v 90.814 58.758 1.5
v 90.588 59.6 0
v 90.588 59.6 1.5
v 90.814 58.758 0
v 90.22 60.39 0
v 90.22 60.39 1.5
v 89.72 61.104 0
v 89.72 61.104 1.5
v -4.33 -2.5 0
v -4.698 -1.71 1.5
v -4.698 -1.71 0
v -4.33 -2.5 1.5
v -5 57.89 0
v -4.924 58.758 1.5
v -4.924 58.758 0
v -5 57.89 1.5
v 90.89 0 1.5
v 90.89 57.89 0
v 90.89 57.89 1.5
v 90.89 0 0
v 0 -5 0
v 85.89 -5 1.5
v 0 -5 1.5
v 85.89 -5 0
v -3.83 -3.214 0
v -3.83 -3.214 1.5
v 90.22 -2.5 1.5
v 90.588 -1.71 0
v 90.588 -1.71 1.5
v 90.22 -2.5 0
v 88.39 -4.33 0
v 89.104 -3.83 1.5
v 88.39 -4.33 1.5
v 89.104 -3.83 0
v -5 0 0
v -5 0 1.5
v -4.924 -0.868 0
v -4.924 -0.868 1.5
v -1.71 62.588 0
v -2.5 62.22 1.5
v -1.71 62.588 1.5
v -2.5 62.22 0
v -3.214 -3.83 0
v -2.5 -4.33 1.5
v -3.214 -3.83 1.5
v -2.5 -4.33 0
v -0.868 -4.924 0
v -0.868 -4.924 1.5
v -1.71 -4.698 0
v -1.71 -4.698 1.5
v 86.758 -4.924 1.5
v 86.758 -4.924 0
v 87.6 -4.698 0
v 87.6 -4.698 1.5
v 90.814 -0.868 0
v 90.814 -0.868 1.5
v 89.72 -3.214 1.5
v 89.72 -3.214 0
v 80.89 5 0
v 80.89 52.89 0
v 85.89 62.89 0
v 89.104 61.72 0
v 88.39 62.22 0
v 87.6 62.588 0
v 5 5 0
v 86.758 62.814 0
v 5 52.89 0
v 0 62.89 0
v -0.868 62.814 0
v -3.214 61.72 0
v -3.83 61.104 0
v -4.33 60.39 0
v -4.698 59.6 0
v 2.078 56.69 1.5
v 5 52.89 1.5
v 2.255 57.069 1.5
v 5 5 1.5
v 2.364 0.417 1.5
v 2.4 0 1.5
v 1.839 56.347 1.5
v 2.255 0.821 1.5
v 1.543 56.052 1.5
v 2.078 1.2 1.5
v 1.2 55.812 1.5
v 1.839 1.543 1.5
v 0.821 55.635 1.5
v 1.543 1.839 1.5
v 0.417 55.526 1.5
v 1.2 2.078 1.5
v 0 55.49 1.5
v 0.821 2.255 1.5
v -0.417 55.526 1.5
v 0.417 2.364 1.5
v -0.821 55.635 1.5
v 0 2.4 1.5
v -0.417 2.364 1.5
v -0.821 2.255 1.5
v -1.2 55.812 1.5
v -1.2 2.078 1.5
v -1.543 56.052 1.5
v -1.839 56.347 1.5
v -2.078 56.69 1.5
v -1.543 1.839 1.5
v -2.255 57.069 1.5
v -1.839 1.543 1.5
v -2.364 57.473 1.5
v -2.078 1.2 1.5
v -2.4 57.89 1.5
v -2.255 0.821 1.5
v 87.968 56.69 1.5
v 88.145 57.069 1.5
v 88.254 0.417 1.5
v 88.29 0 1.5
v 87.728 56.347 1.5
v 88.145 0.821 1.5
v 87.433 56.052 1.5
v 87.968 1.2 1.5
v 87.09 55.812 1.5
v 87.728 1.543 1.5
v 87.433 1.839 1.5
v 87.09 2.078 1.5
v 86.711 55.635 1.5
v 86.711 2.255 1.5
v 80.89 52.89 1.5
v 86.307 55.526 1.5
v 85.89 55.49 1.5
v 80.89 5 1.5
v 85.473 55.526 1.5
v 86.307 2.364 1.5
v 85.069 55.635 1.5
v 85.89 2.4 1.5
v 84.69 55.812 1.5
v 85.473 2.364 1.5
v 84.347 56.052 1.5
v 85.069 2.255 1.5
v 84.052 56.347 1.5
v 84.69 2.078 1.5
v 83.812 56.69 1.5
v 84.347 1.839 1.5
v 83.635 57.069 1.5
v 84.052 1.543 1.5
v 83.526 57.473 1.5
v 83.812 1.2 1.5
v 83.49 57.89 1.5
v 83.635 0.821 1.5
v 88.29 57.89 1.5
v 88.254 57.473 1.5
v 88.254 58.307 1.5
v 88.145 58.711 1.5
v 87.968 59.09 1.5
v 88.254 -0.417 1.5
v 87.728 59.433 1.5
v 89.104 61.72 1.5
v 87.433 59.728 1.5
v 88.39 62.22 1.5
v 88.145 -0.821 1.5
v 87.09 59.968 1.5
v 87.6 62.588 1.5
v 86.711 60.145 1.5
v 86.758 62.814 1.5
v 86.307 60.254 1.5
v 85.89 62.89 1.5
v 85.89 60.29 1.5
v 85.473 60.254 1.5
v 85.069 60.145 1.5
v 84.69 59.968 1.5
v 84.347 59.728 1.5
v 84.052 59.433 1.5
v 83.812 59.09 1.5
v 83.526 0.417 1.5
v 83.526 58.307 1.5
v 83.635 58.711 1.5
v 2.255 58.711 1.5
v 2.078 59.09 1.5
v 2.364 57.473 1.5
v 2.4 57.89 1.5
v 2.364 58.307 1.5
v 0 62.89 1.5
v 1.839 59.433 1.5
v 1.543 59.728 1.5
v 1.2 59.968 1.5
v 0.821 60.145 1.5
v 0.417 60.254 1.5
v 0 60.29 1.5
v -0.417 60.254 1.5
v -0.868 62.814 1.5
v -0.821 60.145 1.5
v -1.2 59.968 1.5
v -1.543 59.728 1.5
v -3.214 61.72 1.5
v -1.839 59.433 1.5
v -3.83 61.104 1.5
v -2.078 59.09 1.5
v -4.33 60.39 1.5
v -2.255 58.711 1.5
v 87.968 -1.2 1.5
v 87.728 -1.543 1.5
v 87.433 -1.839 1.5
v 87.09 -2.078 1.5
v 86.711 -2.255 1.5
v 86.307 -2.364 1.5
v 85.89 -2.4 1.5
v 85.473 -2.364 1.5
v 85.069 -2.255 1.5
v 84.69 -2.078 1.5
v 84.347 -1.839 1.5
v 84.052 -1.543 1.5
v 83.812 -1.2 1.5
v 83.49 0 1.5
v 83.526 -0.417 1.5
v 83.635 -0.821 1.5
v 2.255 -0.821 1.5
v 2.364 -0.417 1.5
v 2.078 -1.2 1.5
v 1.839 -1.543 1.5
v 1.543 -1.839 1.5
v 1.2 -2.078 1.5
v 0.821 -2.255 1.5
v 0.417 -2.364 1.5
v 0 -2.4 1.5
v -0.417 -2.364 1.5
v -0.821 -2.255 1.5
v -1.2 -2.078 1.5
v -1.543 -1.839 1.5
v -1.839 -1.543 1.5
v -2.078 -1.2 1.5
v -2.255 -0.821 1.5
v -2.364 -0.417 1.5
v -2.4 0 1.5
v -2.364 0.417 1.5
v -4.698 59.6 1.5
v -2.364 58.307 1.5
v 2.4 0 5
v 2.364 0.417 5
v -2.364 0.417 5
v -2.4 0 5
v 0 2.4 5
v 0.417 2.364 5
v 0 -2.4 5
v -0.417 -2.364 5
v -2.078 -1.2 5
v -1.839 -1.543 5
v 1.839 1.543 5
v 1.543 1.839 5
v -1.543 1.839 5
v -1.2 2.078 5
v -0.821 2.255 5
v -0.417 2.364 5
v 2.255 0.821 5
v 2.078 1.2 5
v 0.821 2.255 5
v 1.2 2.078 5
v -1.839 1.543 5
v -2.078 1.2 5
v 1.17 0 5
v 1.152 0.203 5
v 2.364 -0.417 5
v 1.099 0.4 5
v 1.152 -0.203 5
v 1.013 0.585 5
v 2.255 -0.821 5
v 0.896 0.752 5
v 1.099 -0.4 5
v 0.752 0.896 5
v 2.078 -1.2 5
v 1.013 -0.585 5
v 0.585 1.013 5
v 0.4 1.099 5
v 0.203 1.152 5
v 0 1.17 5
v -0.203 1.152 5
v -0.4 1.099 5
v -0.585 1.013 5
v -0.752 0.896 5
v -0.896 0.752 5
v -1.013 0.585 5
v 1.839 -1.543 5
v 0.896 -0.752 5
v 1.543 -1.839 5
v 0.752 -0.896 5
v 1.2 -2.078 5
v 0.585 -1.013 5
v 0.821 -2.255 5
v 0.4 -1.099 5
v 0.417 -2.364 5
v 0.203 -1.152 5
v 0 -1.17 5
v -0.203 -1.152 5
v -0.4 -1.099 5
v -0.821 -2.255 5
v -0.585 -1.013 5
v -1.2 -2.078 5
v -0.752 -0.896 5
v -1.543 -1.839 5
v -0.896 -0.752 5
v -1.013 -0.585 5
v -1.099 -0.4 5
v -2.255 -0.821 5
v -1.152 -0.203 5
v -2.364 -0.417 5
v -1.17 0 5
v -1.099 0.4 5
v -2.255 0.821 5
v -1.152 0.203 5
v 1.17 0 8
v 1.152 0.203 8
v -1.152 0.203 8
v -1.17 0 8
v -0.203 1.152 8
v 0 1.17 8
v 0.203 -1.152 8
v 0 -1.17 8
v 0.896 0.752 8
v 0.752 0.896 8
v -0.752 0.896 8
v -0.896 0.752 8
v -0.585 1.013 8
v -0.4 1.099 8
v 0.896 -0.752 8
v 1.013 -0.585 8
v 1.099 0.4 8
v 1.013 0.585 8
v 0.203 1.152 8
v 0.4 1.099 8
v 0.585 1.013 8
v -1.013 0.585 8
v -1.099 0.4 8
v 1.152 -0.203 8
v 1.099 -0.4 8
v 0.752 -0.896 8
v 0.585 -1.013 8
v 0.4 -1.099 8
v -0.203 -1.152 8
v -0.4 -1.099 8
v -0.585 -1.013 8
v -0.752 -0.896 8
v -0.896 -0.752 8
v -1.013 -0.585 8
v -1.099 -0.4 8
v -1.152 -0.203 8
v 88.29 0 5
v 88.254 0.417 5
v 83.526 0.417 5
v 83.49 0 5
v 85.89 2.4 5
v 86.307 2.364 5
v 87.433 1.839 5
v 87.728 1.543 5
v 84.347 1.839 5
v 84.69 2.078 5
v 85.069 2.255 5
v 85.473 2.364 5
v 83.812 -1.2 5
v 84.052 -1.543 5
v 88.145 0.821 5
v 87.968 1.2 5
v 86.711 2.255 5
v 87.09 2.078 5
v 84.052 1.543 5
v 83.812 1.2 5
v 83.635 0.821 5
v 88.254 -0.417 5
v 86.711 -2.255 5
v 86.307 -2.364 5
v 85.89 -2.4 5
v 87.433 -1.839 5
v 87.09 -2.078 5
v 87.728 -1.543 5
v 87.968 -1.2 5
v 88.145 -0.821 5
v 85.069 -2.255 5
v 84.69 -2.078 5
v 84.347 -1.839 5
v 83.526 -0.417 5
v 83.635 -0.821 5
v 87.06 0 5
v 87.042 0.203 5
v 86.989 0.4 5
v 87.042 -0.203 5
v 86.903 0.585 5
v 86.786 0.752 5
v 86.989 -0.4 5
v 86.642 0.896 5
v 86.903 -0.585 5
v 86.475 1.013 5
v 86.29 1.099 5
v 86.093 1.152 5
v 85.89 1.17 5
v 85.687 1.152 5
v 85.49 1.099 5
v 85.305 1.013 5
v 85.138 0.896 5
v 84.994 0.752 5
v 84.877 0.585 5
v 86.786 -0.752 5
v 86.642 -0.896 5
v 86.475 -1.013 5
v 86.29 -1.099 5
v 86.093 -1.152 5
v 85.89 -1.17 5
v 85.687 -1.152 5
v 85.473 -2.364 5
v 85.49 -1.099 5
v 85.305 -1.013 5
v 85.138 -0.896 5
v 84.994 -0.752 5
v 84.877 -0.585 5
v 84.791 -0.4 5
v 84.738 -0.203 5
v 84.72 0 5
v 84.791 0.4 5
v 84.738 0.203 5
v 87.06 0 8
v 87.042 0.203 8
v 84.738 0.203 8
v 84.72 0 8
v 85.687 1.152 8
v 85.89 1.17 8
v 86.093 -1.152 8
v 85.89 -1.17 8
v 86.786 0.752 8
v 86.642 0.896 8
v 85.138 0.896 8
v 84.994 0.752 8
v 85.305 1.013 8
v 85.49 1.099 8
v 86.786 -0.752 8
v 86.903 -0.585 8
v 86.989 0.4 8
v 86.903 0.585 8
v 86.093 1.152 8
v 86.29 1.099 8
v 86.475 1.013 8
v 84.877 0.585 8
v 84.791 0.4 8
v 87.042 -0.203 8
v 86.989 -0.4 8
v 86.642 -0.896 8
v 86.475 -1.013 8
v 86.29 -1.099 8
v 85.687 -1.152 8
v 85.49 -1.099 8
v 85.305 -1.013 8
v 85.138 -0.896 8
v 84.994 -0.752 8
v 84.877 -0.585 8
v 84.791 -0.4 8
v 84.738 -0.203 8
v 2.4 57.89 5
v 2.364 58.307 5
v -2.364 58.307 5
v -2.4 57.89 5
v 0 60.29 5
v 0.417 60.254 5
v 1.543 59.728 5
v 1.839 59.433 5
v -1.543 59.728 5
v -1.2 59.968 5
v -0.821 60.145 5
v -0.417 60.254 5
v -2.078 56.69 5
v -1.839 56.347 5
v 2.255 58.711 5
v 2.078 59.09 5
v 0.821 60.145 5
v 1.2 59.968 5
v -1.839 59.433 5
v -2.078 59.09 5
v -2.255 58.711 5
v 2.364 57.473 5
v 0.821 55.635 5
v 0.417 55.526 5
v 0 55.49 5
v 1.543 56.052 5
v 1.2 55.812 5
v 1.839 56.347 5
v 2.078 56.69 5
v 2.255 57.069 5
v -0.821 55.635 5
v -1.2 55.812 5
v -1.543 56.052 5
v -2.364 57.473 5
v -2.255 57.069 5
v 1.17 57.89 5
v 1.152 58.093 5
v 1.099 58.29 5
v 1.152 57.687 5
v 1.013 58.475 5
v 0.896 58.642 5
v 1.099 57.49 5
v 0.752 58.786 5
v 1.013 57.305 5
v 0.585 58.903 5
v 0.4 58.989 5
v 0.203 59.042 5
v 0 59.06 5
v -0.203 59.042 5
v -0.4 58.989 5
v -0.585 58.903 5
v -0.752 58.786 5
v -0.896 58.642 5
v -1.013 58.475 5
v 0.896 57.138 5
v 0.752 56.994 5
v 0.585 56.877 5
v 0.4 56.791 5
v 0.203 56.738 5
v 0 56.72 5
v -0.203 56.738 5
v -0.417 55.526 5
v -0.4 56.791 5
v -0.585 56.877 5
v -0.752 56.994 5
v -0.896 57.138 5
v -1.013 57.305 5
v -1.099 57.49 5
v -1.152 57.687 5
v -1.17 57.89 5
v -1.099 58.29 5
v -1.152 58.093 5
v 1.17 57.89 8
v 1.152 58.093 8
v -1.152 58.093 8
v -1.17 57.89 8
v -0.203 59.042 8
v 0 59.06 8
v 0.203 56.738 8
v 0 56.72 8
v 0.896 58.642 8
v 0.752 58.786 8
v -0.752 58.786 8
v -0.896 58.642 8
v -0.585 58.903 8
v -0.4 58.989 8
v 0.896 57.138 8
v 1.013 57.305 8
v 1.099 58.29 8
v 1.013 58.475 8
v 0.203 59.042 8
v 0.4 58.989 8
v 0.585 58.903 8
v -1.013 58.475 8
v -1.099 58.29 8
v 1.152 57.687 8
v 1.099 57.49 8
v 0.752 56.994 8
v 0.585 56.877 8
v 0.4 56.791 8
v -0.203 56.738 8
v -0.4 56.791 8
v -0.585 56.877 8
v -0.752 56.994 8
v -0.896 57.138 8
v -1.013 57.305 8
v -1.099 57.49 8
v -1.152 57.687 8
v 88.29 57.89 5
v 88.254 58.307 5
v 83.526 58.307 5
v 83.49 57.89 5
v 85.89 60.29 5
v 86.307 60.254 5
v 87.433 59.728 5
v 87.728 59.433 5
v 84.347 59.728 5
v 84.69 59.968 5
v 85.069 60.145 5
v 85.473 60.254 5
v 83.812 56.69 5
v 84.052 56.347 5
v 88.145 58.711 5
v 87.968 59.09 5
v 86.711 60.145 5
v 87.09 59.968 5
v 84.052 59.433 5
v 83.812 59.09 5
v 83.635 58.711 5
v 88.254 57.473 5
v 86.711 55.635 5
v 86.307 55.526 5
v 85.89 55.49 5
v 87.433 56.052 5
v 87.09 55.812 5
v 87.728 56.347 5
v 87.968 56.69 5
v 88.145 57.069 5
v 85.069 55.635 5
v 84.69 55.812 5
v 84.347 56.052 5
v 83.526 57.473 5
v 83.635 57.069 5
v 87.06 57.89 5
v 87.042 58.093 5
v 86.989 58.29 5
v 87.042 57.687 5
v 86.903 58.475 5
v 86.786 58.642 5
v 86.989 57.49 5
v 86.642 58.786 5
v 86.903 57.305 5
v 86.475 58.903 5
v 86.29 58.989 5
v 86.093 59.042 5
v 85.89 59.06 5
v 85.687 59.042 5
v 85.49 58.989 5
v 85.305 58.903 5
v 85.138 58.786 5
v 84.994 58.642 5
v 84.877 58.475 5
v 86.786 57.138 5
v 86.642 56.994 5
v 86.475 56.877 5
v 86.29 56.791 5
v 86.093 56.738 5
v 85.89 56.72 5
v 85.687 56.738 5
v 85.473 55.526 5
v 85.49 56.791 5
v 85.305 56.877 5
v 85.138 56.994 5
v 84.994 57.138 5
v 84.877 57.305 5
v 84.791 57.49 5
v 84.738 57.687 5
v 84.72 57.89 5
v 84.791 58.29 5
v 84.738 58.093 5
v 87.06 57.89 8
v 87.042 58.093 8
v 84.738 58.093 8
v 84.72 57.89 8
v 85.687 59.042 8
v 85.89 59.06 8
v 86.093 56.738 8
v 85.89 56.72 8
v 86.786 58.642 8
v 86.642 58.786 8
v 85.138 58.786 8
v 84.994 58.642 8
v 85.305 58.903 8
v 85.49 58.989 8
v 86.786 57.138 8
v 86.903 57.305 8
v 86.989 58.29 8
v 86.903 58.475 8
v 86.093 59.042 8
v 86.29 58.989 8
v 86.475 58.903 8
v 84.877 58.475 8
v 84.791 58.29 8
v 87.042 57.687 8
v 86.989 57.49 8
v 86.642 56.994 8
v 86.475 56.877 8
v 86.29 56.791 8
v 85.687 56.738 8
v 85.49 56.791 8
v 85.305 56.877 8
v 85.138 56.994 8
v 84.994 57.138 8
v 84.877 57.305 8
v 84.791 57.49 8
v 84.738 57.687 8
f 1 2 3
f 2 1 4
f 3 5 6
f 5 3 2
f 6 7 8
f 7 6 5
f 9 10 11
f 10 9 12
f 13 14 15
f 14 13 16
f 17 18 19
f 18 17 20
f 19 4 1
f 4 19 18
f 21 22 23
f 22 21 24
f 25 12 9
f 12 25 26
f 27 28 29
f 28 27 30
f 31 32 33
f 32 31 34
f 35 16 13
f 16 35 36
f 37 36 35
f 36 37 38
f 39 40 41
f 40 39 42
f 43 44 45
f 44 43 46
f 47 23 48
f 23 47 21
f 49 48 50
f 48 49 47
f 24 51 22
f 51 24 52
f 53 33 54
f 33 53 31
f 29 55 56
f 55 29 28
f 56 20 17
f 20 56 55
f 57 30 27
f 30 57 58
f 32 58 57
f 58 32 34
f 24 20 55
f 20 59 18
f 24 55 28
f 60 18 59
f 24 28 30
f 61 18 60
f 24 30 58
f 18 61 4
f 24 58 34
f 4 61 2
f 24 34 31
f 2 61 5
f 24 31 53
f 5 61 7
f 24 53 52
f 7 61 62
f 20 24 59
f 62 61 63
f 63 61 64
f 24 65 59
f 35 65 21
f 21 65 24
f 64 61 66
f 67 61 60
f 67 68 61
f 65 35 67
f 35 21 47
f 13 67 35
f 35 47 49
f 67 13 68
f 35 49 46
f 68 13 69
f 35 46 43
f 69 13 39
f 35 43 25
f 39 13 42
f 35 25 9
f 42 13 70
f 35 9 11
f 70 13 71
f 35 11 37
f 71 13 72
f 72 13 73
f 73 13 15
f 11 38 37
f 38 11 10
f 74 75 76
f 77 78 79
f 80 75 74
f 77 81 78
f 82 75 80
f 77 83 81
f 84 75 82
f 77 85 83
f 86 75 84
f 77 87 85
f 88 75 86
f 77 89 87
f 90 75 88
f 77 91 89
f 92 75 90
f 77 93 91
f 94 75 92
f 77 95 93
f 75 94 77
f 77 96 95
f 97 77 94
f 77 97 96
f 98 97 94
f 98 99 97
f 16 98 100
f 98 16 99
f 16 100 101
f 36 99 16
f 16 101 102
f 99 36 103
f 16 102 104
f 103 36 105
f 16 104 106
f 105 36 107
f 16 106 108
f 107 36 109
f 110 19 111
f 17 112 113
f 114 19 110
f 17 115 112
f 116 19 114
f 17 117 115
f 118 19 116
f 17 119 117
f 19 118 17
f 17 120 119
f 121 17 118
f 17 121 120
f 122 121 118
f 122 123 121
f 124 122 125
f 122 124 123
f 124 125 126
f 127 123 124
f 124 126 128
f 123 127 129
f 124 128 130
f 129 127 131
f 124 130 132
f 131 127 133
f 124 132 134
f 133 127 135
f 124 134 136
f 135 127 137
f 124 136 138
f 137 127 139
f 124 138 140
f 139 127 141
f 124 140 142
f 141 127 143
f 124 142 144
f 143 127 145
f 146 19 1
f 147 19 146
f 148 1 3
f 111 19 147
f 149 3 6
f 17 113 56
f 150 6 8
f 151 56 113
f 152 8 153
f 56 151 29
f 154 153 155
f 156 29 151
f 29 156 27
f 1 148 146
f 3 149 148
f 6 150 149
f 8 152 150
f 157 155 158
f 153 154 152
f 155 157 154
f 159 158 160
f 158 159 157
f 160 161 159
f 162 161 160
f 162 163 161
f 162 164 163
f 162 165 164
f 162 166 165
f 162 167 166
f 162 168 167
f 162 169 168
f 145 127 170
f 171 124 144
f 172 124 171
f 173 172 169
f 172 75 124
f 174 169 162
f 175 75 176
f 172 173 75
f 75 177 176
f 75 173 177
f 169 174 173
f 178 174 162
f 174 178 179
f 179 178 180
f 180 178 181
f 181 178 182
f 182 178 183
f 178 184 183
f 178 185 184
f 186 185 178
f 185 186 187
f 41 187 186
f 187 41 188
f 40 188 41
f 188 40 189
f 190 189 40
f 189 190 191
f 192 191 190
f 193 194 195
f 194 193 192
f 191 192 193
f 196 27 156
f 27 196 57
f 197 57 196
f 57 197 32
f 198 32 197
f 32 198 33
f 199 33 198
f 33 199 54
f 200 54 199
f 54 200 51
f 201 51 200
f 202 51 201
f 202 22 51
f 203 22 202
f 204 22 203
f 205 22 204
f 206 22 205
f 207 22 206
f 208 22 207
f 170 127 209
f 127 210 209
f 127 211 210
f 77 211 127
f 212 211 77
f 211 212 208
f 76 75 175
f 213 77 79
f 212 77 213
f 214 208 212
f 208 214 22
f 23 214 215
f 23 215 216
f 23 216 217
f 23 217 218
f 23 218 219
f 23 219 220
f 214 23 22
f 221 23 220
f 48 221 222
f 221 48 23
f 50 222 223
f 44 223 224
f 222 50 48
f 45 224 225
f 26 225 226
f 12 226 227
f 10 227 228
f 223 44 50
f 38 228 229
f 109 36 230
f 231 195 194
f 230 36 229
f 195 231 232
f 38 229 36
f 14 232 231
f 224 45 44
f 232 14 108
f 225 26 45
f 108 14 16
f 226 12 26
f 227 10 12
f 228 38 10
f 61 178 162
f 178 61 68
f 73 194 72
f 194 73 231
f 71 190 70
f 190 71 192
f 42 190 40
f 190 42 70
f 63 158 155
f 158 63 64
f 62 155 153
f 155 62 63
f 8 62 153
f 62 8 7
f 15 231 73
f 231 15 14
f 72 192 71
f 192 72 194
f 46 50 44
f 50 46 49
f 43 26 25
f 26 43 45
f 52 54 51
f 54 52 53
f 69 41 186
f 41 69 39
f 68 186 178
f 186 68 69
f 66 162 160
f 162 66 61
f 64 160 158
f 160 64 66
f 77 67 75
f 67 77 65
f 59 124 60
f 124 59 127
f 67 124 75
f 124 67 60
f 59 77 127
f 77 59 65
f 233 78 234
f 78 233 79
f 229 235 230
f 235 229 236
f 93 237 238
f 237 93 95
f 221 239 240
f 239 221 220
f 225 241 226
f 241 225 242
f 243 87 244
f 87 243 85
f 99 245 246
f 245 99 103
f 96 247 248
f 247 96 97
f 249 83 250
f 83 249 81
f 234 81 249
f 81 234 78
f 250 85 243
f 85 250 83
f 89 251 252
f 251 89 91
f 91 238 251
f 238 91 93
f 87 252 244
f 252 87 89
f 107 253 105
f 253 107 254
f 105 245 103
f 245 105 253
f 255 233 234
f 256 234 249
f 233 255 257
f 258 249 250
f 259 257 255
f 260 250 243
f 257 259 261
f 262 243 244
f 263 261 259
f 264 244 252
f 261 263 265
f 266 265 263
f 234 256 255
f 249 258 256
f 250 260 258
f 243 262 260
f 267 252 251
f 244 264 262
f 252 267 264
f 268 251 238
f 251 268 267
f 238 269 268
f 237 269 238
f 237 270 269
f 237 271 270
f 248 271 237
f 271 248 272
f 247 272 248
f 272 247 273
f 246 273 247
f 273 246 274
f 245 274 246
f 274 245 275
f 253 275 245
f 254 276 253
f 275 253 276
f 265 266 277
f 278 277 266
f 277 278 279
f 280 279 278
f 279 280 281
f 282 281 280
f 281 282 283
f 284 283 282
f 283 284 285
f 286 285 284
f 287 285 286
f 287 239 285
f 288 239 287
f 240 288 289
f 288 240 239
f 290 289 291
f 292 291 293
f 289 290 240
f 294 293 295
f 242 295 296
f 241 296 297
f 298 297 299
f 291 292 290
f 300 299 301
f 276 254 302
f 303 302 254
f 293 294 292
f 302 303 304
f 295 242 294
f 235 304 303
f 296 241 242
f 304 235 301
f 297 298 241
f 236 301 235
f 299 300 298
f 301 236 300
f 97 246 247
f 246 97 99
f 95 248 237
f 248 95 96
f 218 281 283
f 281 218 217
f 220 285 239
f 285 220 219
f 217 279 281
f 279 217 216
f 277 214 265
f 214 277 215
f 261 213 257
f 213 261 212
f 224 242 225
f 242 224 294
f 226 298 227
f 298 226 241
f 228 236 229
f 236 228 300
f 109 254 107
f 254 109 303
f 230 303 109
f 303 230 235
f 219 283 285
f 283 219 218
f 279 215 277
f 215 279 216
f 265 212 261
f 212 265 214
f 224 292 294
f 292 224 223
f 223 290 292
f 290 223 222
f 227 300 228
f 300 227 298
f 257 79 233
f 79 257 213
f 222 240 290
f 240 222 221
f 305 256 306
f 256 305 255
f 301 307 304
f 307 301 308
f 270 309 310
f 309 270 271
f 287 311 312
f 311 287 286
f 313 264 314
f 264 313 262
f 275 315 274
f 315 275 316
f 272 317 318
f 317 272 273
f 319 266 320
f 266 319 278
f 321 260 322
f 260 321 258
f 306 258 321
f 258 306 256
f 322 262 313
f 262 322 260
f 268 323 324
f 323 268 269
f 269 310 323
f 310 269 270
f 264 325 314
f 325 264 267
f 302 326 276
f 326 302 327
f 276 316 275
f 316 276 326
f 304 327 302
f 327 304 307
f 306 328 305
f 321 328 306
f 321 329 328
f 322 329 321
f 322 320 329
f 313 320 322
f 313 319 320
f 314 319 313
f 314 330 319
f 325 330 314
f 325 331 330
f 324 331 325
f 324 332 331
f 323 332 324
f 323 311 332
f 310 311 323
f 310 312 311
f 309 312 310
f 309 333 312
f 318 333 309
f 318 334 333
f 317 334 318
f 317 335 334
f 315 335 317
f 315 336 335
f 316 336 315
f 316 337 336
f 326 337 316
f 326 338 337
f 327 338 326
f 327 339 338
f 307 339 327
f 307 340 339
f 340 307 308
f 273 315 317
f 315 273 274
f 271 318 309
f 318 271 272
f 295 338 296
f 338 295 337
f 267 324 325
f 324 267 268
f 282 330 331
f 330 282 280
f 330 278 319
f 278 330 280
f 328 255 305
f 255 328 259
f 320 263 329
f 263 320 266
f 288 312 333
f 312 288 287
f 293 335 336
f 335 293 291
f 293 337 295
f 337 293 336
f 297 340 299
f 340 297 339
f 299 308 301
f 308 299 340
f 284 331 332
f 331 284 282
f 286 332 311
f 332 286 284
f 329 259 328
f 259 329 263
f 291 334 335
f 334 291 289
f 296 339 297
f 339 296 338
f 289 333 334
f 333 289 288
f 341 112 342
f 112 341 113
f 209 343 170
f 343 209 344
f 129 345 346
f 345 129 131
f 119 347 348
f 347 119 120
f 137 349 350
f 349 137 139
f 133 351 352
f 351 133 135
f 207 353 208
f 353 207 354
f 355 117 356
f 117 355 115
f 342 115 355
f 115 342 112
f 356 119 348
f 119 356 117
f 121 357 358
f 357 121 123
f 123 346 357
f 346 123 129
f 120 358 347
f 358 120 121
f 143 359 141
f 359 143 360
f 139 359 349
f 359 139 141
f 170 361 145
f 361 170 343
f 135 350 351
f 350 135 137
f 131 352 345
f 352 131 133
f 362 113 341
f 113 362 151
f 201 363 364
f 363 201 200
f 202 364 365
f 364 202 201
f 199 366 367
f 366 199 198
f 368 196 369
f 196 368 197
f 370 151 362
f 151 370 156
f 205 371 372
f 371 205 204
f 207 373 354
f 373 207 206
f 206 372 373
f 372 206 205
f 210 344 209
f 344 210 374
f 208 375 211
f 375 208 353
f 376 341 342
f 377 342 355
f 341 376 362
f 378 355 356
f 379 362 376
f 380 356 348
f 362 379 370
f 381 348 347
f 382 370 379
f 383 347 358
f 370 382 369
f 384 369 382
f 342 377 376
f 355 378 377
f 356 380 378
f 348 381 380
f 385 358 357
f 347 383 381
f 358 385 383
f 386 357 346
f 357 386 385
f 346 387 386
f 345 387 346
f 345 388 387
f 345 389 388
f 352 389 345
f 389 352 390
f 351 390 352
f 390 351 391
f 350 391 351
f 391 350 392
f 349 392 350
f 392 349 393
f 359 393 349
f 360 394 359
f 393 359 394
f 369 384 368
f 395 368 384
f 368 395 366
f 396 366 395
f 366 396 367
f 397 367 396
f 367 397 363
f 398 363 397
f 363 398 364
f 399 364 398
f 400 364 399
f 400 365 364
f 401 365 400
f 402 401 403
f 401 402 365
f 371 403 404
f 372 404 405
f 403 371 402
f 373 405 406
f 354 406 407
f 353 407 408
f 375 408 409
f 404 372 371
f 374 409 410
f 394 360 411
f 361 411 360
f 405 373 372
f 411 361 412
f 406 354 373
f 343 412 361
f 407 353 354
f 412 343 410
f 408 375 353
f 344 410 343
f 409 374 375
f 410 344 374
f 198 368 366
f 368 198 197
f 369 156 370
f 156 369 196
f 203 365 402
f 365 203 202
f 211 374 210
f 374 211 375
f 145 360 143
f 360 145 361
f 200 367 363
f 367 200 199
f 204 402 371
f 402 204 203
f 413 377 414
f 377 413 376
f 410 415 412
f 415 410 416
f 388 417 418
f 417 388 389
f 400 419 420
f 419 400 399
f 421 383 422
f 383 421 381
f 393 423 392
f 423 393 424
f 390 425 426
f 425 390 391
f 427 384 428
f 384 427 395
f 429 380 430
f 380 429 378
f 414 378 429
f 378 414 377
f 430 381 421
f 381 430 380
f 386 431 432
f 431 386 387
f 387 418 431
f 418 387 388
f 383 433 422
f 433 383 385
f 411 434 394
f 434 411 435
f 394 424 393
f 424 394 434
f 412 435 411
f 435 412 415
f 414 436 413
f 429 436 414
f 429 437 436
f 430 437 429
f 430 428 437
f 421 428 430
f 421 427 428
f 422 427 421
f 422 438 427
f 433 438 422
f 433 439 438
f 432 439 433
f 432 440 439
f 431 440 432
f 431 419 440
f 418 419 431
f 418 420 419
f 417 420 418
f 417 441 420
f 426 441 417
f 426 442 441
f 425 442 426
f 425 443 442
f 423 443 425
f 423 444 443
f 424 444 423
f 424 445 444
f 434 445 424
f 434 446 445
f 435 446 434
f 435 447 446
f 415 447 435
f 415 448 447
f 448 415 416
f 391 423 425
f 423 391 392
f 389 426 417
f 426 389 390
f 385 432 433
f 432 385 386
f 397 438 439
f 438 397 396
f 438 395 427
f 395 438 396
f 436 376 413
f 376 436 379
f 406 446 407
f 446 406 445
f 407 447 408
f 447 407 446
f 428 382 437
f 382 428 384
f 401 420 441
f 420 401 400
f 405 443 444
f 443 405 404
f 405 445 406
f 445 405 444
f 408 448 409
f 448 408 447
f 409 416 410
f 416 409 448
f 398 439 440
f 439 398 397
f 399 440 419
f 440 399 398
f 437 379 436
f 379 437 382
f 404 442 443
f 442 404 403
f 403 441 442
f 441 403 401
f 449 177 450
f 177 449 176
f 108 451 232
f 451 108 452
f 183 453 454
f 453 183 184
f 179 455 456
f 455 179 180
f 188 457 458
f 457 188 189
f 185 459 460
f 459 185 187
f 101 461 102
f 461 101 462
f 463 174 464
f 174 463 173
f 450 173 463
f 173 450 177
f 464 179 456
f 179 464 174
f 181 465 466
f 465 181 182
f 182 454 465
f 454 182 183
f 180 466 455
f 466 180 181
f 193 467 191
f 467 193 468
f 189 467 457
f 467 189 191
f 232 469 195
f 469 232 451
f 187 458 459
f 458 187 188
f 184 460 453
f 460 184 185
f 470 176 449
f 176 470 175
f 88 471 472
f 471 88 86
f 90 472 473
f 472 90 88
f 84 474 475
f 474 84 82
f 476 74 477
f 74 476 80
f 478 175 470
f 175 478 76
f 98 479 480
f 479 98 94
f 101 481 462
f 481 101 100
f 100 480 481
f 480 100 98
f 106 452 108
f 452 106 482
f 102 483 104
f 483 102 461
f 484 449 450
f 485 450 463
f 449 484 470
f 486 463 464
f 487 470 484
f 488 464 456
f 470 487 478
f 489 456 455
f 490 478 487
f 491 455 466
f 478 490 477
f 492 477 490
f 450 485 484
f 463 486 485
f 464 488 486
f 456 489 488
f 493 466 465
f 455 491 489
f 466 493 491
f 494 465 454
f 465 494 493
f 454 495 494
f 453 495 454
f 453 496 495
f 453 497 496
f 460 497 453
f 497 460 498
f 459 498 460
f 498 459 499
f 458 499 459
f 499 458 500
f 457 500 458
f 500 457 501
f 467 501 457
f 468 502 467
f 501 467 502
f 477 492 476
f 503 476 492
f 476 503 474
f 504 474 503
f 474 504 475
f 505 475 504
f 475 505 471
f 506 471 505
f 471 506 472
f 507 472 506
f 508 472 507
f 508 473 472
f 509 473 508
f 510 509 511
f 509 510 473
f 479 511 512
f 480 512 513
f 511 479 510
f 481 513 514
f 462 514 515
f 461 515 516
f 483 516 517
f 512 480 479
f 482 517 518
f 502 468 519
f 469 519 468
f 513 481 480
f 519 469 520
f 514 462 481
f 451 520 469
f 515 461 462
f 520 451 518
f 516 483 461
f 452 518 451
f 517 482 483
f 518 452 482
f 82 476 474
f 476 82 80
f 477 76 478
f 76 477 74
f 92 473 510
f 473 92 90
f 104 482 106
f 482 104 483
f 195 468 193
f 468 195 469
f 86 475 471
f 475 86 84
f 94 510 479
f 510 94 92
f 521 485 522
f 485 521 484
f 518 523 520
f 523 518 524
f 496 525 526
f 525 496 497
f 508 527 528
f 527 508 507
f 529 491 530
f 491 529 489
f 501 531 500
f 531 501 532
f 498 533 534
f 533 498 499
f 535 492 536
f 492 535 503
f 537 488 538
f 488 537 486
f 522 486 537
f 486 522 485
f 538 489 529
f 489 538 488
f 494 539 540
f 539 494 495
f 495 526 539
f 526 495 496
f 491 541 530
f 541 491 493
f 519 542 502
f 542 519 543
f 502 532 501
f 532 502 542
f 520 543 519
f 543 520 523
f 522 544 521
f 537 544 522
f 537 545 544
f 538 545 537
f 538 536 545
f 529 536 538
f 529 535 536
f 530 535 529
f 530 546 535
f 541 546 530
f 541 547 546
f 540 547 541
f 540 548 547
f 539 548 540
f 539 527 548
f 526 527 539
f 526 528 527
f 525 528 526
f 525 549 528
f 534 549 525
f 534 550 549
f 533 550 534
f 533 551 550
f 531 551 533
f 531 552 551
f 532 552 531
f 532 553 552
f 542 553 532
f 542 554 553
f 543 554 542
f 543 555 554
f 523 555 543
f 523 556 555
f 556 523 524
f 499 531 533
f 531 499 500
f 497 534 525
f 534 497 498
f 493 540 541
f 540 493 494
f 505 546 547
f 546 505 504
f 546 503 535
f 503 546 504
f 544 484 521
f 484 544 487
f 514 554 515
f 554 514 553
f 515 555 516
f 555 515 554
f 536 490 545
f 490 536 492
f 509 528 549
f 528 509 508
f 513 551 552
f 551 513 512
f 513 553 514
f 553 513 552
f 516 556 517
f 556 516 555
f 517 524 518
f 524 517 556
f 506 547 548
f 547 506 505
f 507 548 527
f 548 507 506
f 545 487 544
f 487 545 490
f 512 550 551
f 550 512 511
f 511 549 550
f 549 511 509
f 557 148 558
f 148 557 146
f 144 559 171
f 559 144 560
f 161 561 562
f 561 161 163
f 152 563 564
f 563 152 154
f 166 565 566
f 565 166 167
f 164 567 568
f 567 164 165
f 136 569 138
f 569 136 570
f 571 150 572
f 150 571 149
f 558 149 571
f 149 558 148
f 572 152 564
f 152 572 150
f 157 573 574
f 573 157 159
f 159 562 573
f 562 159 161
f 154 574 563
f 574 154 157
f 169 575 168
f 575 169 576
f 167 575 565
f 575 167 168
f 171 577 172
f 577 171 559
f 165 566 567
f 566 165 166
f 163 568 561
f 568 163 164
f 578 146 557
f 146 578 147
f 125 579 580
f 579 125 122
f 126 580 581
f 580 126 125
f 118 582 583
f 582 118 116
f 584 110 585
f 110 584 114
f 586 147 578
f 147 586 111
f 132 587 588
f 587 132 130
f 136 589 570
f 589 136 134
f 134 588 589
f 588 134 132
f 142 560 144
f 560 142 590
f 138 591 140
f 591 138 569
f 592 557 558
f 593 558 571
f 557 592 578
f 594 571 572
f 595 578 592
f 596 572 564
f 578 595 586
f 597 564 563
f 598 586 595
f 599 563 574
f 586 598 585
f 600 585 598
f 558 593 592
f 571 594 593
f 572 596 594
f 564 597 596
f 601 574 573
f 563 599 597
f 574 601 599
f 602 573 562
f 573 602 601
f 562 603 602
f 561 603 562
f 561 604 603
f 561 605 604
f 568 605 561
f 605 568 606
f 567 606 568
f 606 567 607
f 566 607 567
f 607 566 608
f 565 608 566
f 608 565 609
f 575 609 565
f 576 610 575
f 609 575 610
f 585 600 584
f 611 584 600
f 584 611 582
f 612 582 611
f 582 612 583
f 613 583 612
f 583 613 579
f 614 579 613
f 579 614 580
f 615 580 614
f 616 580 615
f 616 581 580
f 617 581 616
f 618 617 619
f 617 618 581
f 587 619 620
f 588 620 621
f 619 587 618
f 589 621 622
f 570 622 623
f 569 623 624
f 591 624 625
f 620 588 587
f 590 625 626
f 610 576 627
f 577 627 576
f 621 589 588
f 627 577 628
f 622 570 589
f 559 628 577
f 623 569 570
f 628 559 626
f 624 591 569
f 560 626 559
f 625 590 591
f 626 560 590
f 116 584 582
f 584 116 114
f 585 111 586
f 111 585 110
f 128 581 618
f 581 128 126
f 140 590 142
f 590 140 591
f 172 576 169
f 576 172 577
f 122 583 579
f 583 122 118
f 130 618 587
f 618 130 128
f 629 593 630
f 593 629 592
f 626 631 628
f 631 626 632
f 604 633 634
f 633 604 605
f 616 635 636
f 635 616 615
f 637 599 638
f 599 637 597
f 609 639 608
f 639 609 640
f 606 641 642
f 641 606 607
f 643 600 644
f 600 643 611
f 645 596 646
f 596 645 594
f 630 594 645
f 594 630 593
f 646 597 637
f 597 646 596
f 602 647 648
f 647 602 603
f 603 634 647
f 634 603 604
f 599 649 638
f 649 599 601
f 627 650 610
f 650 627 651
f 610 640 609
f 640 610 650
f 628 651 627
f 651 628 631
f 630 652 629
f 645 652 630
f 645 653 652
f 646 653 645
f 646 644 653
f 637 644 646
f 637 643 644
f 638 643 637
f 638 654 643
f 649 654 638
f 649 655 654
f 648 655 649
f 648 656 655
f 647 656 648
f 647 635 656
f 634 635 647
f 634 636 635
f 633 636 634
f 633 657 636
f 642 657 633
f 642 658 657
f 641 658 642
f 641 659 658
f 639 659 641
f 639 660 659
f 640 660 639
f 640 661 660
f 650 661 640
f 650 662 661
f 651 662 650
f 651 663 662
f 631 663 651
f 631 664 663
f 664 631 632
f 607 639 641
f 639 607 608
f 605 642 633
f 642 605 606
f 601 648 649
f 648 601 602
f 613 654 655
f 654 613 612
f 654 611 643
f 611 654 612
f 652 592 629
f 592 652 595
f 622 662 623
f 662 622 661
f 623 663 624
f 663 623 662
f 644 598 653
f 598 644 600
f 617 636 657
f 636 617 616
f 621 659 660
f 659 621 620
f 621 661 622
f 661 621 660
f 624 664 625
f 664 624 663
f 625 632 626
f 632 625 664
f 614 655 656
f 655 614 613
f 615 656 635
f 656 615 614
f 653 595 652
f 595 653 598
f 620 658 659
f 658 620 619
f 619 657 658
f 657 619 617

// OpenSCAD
xDist = 83.35;
yDist = 55.35;
holeRadius = 2.54;
safeRadius = 4.8;

standoffHeight = 5;
pegHeight = 3;
outset = 5;
radius = 5;
plateThickness = 1.5;

wiggleRoom = 0.2;

$fn = 36;

module roundedRect(w, h, d, r) {
    linear_extrude(d)
        minkowski() {
            circle(r);
            square([w-2*r, h-2*r]);
        };
}

module peg() {
    cylinder(d=safeRadius, h=standoffHeight);
    cylinder(d=holeRadius - wiggleRoom, h=standoffHeight + pegHeight);
}

difference() {
    roundedRect(xDist + holeRadius + 2*outset, yDist + holeRadius + 2*outset, plateThickness, radius);
    translate([outset, outset, -0.1])
        cube([xDist + holeRadius - 2*outset, yDist + holeRadius - 2*outset, plateThickness+0.2]);
}
peg();
translate([xDist + holeRadius, 0, 0])
    peg();
translate([0, yDist + holeRadius, 0])
    peg();
translate([xDist + holeRadius, yDist + holeRadius, 0])
    peg();
